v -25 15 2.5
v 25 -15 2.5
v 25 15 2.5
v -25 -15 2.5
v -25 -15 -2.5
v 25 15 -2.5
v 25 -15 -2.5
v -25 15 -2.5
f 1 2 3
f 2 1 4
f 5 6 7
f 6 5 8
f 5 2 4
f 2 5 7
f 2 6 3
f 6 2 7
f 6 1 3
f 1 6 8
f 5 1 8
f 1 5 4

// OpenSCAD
// Define dimensions for the rectangular block
length = 50;  // Length of the block
width = 30;   // Width of the block
thickness = 5; // Thickness of the block

// Create the rectangular block
module rectangular_block() {
    cube([length, width, thickness], center = true);
}

// Render the model
rectangular_block();
